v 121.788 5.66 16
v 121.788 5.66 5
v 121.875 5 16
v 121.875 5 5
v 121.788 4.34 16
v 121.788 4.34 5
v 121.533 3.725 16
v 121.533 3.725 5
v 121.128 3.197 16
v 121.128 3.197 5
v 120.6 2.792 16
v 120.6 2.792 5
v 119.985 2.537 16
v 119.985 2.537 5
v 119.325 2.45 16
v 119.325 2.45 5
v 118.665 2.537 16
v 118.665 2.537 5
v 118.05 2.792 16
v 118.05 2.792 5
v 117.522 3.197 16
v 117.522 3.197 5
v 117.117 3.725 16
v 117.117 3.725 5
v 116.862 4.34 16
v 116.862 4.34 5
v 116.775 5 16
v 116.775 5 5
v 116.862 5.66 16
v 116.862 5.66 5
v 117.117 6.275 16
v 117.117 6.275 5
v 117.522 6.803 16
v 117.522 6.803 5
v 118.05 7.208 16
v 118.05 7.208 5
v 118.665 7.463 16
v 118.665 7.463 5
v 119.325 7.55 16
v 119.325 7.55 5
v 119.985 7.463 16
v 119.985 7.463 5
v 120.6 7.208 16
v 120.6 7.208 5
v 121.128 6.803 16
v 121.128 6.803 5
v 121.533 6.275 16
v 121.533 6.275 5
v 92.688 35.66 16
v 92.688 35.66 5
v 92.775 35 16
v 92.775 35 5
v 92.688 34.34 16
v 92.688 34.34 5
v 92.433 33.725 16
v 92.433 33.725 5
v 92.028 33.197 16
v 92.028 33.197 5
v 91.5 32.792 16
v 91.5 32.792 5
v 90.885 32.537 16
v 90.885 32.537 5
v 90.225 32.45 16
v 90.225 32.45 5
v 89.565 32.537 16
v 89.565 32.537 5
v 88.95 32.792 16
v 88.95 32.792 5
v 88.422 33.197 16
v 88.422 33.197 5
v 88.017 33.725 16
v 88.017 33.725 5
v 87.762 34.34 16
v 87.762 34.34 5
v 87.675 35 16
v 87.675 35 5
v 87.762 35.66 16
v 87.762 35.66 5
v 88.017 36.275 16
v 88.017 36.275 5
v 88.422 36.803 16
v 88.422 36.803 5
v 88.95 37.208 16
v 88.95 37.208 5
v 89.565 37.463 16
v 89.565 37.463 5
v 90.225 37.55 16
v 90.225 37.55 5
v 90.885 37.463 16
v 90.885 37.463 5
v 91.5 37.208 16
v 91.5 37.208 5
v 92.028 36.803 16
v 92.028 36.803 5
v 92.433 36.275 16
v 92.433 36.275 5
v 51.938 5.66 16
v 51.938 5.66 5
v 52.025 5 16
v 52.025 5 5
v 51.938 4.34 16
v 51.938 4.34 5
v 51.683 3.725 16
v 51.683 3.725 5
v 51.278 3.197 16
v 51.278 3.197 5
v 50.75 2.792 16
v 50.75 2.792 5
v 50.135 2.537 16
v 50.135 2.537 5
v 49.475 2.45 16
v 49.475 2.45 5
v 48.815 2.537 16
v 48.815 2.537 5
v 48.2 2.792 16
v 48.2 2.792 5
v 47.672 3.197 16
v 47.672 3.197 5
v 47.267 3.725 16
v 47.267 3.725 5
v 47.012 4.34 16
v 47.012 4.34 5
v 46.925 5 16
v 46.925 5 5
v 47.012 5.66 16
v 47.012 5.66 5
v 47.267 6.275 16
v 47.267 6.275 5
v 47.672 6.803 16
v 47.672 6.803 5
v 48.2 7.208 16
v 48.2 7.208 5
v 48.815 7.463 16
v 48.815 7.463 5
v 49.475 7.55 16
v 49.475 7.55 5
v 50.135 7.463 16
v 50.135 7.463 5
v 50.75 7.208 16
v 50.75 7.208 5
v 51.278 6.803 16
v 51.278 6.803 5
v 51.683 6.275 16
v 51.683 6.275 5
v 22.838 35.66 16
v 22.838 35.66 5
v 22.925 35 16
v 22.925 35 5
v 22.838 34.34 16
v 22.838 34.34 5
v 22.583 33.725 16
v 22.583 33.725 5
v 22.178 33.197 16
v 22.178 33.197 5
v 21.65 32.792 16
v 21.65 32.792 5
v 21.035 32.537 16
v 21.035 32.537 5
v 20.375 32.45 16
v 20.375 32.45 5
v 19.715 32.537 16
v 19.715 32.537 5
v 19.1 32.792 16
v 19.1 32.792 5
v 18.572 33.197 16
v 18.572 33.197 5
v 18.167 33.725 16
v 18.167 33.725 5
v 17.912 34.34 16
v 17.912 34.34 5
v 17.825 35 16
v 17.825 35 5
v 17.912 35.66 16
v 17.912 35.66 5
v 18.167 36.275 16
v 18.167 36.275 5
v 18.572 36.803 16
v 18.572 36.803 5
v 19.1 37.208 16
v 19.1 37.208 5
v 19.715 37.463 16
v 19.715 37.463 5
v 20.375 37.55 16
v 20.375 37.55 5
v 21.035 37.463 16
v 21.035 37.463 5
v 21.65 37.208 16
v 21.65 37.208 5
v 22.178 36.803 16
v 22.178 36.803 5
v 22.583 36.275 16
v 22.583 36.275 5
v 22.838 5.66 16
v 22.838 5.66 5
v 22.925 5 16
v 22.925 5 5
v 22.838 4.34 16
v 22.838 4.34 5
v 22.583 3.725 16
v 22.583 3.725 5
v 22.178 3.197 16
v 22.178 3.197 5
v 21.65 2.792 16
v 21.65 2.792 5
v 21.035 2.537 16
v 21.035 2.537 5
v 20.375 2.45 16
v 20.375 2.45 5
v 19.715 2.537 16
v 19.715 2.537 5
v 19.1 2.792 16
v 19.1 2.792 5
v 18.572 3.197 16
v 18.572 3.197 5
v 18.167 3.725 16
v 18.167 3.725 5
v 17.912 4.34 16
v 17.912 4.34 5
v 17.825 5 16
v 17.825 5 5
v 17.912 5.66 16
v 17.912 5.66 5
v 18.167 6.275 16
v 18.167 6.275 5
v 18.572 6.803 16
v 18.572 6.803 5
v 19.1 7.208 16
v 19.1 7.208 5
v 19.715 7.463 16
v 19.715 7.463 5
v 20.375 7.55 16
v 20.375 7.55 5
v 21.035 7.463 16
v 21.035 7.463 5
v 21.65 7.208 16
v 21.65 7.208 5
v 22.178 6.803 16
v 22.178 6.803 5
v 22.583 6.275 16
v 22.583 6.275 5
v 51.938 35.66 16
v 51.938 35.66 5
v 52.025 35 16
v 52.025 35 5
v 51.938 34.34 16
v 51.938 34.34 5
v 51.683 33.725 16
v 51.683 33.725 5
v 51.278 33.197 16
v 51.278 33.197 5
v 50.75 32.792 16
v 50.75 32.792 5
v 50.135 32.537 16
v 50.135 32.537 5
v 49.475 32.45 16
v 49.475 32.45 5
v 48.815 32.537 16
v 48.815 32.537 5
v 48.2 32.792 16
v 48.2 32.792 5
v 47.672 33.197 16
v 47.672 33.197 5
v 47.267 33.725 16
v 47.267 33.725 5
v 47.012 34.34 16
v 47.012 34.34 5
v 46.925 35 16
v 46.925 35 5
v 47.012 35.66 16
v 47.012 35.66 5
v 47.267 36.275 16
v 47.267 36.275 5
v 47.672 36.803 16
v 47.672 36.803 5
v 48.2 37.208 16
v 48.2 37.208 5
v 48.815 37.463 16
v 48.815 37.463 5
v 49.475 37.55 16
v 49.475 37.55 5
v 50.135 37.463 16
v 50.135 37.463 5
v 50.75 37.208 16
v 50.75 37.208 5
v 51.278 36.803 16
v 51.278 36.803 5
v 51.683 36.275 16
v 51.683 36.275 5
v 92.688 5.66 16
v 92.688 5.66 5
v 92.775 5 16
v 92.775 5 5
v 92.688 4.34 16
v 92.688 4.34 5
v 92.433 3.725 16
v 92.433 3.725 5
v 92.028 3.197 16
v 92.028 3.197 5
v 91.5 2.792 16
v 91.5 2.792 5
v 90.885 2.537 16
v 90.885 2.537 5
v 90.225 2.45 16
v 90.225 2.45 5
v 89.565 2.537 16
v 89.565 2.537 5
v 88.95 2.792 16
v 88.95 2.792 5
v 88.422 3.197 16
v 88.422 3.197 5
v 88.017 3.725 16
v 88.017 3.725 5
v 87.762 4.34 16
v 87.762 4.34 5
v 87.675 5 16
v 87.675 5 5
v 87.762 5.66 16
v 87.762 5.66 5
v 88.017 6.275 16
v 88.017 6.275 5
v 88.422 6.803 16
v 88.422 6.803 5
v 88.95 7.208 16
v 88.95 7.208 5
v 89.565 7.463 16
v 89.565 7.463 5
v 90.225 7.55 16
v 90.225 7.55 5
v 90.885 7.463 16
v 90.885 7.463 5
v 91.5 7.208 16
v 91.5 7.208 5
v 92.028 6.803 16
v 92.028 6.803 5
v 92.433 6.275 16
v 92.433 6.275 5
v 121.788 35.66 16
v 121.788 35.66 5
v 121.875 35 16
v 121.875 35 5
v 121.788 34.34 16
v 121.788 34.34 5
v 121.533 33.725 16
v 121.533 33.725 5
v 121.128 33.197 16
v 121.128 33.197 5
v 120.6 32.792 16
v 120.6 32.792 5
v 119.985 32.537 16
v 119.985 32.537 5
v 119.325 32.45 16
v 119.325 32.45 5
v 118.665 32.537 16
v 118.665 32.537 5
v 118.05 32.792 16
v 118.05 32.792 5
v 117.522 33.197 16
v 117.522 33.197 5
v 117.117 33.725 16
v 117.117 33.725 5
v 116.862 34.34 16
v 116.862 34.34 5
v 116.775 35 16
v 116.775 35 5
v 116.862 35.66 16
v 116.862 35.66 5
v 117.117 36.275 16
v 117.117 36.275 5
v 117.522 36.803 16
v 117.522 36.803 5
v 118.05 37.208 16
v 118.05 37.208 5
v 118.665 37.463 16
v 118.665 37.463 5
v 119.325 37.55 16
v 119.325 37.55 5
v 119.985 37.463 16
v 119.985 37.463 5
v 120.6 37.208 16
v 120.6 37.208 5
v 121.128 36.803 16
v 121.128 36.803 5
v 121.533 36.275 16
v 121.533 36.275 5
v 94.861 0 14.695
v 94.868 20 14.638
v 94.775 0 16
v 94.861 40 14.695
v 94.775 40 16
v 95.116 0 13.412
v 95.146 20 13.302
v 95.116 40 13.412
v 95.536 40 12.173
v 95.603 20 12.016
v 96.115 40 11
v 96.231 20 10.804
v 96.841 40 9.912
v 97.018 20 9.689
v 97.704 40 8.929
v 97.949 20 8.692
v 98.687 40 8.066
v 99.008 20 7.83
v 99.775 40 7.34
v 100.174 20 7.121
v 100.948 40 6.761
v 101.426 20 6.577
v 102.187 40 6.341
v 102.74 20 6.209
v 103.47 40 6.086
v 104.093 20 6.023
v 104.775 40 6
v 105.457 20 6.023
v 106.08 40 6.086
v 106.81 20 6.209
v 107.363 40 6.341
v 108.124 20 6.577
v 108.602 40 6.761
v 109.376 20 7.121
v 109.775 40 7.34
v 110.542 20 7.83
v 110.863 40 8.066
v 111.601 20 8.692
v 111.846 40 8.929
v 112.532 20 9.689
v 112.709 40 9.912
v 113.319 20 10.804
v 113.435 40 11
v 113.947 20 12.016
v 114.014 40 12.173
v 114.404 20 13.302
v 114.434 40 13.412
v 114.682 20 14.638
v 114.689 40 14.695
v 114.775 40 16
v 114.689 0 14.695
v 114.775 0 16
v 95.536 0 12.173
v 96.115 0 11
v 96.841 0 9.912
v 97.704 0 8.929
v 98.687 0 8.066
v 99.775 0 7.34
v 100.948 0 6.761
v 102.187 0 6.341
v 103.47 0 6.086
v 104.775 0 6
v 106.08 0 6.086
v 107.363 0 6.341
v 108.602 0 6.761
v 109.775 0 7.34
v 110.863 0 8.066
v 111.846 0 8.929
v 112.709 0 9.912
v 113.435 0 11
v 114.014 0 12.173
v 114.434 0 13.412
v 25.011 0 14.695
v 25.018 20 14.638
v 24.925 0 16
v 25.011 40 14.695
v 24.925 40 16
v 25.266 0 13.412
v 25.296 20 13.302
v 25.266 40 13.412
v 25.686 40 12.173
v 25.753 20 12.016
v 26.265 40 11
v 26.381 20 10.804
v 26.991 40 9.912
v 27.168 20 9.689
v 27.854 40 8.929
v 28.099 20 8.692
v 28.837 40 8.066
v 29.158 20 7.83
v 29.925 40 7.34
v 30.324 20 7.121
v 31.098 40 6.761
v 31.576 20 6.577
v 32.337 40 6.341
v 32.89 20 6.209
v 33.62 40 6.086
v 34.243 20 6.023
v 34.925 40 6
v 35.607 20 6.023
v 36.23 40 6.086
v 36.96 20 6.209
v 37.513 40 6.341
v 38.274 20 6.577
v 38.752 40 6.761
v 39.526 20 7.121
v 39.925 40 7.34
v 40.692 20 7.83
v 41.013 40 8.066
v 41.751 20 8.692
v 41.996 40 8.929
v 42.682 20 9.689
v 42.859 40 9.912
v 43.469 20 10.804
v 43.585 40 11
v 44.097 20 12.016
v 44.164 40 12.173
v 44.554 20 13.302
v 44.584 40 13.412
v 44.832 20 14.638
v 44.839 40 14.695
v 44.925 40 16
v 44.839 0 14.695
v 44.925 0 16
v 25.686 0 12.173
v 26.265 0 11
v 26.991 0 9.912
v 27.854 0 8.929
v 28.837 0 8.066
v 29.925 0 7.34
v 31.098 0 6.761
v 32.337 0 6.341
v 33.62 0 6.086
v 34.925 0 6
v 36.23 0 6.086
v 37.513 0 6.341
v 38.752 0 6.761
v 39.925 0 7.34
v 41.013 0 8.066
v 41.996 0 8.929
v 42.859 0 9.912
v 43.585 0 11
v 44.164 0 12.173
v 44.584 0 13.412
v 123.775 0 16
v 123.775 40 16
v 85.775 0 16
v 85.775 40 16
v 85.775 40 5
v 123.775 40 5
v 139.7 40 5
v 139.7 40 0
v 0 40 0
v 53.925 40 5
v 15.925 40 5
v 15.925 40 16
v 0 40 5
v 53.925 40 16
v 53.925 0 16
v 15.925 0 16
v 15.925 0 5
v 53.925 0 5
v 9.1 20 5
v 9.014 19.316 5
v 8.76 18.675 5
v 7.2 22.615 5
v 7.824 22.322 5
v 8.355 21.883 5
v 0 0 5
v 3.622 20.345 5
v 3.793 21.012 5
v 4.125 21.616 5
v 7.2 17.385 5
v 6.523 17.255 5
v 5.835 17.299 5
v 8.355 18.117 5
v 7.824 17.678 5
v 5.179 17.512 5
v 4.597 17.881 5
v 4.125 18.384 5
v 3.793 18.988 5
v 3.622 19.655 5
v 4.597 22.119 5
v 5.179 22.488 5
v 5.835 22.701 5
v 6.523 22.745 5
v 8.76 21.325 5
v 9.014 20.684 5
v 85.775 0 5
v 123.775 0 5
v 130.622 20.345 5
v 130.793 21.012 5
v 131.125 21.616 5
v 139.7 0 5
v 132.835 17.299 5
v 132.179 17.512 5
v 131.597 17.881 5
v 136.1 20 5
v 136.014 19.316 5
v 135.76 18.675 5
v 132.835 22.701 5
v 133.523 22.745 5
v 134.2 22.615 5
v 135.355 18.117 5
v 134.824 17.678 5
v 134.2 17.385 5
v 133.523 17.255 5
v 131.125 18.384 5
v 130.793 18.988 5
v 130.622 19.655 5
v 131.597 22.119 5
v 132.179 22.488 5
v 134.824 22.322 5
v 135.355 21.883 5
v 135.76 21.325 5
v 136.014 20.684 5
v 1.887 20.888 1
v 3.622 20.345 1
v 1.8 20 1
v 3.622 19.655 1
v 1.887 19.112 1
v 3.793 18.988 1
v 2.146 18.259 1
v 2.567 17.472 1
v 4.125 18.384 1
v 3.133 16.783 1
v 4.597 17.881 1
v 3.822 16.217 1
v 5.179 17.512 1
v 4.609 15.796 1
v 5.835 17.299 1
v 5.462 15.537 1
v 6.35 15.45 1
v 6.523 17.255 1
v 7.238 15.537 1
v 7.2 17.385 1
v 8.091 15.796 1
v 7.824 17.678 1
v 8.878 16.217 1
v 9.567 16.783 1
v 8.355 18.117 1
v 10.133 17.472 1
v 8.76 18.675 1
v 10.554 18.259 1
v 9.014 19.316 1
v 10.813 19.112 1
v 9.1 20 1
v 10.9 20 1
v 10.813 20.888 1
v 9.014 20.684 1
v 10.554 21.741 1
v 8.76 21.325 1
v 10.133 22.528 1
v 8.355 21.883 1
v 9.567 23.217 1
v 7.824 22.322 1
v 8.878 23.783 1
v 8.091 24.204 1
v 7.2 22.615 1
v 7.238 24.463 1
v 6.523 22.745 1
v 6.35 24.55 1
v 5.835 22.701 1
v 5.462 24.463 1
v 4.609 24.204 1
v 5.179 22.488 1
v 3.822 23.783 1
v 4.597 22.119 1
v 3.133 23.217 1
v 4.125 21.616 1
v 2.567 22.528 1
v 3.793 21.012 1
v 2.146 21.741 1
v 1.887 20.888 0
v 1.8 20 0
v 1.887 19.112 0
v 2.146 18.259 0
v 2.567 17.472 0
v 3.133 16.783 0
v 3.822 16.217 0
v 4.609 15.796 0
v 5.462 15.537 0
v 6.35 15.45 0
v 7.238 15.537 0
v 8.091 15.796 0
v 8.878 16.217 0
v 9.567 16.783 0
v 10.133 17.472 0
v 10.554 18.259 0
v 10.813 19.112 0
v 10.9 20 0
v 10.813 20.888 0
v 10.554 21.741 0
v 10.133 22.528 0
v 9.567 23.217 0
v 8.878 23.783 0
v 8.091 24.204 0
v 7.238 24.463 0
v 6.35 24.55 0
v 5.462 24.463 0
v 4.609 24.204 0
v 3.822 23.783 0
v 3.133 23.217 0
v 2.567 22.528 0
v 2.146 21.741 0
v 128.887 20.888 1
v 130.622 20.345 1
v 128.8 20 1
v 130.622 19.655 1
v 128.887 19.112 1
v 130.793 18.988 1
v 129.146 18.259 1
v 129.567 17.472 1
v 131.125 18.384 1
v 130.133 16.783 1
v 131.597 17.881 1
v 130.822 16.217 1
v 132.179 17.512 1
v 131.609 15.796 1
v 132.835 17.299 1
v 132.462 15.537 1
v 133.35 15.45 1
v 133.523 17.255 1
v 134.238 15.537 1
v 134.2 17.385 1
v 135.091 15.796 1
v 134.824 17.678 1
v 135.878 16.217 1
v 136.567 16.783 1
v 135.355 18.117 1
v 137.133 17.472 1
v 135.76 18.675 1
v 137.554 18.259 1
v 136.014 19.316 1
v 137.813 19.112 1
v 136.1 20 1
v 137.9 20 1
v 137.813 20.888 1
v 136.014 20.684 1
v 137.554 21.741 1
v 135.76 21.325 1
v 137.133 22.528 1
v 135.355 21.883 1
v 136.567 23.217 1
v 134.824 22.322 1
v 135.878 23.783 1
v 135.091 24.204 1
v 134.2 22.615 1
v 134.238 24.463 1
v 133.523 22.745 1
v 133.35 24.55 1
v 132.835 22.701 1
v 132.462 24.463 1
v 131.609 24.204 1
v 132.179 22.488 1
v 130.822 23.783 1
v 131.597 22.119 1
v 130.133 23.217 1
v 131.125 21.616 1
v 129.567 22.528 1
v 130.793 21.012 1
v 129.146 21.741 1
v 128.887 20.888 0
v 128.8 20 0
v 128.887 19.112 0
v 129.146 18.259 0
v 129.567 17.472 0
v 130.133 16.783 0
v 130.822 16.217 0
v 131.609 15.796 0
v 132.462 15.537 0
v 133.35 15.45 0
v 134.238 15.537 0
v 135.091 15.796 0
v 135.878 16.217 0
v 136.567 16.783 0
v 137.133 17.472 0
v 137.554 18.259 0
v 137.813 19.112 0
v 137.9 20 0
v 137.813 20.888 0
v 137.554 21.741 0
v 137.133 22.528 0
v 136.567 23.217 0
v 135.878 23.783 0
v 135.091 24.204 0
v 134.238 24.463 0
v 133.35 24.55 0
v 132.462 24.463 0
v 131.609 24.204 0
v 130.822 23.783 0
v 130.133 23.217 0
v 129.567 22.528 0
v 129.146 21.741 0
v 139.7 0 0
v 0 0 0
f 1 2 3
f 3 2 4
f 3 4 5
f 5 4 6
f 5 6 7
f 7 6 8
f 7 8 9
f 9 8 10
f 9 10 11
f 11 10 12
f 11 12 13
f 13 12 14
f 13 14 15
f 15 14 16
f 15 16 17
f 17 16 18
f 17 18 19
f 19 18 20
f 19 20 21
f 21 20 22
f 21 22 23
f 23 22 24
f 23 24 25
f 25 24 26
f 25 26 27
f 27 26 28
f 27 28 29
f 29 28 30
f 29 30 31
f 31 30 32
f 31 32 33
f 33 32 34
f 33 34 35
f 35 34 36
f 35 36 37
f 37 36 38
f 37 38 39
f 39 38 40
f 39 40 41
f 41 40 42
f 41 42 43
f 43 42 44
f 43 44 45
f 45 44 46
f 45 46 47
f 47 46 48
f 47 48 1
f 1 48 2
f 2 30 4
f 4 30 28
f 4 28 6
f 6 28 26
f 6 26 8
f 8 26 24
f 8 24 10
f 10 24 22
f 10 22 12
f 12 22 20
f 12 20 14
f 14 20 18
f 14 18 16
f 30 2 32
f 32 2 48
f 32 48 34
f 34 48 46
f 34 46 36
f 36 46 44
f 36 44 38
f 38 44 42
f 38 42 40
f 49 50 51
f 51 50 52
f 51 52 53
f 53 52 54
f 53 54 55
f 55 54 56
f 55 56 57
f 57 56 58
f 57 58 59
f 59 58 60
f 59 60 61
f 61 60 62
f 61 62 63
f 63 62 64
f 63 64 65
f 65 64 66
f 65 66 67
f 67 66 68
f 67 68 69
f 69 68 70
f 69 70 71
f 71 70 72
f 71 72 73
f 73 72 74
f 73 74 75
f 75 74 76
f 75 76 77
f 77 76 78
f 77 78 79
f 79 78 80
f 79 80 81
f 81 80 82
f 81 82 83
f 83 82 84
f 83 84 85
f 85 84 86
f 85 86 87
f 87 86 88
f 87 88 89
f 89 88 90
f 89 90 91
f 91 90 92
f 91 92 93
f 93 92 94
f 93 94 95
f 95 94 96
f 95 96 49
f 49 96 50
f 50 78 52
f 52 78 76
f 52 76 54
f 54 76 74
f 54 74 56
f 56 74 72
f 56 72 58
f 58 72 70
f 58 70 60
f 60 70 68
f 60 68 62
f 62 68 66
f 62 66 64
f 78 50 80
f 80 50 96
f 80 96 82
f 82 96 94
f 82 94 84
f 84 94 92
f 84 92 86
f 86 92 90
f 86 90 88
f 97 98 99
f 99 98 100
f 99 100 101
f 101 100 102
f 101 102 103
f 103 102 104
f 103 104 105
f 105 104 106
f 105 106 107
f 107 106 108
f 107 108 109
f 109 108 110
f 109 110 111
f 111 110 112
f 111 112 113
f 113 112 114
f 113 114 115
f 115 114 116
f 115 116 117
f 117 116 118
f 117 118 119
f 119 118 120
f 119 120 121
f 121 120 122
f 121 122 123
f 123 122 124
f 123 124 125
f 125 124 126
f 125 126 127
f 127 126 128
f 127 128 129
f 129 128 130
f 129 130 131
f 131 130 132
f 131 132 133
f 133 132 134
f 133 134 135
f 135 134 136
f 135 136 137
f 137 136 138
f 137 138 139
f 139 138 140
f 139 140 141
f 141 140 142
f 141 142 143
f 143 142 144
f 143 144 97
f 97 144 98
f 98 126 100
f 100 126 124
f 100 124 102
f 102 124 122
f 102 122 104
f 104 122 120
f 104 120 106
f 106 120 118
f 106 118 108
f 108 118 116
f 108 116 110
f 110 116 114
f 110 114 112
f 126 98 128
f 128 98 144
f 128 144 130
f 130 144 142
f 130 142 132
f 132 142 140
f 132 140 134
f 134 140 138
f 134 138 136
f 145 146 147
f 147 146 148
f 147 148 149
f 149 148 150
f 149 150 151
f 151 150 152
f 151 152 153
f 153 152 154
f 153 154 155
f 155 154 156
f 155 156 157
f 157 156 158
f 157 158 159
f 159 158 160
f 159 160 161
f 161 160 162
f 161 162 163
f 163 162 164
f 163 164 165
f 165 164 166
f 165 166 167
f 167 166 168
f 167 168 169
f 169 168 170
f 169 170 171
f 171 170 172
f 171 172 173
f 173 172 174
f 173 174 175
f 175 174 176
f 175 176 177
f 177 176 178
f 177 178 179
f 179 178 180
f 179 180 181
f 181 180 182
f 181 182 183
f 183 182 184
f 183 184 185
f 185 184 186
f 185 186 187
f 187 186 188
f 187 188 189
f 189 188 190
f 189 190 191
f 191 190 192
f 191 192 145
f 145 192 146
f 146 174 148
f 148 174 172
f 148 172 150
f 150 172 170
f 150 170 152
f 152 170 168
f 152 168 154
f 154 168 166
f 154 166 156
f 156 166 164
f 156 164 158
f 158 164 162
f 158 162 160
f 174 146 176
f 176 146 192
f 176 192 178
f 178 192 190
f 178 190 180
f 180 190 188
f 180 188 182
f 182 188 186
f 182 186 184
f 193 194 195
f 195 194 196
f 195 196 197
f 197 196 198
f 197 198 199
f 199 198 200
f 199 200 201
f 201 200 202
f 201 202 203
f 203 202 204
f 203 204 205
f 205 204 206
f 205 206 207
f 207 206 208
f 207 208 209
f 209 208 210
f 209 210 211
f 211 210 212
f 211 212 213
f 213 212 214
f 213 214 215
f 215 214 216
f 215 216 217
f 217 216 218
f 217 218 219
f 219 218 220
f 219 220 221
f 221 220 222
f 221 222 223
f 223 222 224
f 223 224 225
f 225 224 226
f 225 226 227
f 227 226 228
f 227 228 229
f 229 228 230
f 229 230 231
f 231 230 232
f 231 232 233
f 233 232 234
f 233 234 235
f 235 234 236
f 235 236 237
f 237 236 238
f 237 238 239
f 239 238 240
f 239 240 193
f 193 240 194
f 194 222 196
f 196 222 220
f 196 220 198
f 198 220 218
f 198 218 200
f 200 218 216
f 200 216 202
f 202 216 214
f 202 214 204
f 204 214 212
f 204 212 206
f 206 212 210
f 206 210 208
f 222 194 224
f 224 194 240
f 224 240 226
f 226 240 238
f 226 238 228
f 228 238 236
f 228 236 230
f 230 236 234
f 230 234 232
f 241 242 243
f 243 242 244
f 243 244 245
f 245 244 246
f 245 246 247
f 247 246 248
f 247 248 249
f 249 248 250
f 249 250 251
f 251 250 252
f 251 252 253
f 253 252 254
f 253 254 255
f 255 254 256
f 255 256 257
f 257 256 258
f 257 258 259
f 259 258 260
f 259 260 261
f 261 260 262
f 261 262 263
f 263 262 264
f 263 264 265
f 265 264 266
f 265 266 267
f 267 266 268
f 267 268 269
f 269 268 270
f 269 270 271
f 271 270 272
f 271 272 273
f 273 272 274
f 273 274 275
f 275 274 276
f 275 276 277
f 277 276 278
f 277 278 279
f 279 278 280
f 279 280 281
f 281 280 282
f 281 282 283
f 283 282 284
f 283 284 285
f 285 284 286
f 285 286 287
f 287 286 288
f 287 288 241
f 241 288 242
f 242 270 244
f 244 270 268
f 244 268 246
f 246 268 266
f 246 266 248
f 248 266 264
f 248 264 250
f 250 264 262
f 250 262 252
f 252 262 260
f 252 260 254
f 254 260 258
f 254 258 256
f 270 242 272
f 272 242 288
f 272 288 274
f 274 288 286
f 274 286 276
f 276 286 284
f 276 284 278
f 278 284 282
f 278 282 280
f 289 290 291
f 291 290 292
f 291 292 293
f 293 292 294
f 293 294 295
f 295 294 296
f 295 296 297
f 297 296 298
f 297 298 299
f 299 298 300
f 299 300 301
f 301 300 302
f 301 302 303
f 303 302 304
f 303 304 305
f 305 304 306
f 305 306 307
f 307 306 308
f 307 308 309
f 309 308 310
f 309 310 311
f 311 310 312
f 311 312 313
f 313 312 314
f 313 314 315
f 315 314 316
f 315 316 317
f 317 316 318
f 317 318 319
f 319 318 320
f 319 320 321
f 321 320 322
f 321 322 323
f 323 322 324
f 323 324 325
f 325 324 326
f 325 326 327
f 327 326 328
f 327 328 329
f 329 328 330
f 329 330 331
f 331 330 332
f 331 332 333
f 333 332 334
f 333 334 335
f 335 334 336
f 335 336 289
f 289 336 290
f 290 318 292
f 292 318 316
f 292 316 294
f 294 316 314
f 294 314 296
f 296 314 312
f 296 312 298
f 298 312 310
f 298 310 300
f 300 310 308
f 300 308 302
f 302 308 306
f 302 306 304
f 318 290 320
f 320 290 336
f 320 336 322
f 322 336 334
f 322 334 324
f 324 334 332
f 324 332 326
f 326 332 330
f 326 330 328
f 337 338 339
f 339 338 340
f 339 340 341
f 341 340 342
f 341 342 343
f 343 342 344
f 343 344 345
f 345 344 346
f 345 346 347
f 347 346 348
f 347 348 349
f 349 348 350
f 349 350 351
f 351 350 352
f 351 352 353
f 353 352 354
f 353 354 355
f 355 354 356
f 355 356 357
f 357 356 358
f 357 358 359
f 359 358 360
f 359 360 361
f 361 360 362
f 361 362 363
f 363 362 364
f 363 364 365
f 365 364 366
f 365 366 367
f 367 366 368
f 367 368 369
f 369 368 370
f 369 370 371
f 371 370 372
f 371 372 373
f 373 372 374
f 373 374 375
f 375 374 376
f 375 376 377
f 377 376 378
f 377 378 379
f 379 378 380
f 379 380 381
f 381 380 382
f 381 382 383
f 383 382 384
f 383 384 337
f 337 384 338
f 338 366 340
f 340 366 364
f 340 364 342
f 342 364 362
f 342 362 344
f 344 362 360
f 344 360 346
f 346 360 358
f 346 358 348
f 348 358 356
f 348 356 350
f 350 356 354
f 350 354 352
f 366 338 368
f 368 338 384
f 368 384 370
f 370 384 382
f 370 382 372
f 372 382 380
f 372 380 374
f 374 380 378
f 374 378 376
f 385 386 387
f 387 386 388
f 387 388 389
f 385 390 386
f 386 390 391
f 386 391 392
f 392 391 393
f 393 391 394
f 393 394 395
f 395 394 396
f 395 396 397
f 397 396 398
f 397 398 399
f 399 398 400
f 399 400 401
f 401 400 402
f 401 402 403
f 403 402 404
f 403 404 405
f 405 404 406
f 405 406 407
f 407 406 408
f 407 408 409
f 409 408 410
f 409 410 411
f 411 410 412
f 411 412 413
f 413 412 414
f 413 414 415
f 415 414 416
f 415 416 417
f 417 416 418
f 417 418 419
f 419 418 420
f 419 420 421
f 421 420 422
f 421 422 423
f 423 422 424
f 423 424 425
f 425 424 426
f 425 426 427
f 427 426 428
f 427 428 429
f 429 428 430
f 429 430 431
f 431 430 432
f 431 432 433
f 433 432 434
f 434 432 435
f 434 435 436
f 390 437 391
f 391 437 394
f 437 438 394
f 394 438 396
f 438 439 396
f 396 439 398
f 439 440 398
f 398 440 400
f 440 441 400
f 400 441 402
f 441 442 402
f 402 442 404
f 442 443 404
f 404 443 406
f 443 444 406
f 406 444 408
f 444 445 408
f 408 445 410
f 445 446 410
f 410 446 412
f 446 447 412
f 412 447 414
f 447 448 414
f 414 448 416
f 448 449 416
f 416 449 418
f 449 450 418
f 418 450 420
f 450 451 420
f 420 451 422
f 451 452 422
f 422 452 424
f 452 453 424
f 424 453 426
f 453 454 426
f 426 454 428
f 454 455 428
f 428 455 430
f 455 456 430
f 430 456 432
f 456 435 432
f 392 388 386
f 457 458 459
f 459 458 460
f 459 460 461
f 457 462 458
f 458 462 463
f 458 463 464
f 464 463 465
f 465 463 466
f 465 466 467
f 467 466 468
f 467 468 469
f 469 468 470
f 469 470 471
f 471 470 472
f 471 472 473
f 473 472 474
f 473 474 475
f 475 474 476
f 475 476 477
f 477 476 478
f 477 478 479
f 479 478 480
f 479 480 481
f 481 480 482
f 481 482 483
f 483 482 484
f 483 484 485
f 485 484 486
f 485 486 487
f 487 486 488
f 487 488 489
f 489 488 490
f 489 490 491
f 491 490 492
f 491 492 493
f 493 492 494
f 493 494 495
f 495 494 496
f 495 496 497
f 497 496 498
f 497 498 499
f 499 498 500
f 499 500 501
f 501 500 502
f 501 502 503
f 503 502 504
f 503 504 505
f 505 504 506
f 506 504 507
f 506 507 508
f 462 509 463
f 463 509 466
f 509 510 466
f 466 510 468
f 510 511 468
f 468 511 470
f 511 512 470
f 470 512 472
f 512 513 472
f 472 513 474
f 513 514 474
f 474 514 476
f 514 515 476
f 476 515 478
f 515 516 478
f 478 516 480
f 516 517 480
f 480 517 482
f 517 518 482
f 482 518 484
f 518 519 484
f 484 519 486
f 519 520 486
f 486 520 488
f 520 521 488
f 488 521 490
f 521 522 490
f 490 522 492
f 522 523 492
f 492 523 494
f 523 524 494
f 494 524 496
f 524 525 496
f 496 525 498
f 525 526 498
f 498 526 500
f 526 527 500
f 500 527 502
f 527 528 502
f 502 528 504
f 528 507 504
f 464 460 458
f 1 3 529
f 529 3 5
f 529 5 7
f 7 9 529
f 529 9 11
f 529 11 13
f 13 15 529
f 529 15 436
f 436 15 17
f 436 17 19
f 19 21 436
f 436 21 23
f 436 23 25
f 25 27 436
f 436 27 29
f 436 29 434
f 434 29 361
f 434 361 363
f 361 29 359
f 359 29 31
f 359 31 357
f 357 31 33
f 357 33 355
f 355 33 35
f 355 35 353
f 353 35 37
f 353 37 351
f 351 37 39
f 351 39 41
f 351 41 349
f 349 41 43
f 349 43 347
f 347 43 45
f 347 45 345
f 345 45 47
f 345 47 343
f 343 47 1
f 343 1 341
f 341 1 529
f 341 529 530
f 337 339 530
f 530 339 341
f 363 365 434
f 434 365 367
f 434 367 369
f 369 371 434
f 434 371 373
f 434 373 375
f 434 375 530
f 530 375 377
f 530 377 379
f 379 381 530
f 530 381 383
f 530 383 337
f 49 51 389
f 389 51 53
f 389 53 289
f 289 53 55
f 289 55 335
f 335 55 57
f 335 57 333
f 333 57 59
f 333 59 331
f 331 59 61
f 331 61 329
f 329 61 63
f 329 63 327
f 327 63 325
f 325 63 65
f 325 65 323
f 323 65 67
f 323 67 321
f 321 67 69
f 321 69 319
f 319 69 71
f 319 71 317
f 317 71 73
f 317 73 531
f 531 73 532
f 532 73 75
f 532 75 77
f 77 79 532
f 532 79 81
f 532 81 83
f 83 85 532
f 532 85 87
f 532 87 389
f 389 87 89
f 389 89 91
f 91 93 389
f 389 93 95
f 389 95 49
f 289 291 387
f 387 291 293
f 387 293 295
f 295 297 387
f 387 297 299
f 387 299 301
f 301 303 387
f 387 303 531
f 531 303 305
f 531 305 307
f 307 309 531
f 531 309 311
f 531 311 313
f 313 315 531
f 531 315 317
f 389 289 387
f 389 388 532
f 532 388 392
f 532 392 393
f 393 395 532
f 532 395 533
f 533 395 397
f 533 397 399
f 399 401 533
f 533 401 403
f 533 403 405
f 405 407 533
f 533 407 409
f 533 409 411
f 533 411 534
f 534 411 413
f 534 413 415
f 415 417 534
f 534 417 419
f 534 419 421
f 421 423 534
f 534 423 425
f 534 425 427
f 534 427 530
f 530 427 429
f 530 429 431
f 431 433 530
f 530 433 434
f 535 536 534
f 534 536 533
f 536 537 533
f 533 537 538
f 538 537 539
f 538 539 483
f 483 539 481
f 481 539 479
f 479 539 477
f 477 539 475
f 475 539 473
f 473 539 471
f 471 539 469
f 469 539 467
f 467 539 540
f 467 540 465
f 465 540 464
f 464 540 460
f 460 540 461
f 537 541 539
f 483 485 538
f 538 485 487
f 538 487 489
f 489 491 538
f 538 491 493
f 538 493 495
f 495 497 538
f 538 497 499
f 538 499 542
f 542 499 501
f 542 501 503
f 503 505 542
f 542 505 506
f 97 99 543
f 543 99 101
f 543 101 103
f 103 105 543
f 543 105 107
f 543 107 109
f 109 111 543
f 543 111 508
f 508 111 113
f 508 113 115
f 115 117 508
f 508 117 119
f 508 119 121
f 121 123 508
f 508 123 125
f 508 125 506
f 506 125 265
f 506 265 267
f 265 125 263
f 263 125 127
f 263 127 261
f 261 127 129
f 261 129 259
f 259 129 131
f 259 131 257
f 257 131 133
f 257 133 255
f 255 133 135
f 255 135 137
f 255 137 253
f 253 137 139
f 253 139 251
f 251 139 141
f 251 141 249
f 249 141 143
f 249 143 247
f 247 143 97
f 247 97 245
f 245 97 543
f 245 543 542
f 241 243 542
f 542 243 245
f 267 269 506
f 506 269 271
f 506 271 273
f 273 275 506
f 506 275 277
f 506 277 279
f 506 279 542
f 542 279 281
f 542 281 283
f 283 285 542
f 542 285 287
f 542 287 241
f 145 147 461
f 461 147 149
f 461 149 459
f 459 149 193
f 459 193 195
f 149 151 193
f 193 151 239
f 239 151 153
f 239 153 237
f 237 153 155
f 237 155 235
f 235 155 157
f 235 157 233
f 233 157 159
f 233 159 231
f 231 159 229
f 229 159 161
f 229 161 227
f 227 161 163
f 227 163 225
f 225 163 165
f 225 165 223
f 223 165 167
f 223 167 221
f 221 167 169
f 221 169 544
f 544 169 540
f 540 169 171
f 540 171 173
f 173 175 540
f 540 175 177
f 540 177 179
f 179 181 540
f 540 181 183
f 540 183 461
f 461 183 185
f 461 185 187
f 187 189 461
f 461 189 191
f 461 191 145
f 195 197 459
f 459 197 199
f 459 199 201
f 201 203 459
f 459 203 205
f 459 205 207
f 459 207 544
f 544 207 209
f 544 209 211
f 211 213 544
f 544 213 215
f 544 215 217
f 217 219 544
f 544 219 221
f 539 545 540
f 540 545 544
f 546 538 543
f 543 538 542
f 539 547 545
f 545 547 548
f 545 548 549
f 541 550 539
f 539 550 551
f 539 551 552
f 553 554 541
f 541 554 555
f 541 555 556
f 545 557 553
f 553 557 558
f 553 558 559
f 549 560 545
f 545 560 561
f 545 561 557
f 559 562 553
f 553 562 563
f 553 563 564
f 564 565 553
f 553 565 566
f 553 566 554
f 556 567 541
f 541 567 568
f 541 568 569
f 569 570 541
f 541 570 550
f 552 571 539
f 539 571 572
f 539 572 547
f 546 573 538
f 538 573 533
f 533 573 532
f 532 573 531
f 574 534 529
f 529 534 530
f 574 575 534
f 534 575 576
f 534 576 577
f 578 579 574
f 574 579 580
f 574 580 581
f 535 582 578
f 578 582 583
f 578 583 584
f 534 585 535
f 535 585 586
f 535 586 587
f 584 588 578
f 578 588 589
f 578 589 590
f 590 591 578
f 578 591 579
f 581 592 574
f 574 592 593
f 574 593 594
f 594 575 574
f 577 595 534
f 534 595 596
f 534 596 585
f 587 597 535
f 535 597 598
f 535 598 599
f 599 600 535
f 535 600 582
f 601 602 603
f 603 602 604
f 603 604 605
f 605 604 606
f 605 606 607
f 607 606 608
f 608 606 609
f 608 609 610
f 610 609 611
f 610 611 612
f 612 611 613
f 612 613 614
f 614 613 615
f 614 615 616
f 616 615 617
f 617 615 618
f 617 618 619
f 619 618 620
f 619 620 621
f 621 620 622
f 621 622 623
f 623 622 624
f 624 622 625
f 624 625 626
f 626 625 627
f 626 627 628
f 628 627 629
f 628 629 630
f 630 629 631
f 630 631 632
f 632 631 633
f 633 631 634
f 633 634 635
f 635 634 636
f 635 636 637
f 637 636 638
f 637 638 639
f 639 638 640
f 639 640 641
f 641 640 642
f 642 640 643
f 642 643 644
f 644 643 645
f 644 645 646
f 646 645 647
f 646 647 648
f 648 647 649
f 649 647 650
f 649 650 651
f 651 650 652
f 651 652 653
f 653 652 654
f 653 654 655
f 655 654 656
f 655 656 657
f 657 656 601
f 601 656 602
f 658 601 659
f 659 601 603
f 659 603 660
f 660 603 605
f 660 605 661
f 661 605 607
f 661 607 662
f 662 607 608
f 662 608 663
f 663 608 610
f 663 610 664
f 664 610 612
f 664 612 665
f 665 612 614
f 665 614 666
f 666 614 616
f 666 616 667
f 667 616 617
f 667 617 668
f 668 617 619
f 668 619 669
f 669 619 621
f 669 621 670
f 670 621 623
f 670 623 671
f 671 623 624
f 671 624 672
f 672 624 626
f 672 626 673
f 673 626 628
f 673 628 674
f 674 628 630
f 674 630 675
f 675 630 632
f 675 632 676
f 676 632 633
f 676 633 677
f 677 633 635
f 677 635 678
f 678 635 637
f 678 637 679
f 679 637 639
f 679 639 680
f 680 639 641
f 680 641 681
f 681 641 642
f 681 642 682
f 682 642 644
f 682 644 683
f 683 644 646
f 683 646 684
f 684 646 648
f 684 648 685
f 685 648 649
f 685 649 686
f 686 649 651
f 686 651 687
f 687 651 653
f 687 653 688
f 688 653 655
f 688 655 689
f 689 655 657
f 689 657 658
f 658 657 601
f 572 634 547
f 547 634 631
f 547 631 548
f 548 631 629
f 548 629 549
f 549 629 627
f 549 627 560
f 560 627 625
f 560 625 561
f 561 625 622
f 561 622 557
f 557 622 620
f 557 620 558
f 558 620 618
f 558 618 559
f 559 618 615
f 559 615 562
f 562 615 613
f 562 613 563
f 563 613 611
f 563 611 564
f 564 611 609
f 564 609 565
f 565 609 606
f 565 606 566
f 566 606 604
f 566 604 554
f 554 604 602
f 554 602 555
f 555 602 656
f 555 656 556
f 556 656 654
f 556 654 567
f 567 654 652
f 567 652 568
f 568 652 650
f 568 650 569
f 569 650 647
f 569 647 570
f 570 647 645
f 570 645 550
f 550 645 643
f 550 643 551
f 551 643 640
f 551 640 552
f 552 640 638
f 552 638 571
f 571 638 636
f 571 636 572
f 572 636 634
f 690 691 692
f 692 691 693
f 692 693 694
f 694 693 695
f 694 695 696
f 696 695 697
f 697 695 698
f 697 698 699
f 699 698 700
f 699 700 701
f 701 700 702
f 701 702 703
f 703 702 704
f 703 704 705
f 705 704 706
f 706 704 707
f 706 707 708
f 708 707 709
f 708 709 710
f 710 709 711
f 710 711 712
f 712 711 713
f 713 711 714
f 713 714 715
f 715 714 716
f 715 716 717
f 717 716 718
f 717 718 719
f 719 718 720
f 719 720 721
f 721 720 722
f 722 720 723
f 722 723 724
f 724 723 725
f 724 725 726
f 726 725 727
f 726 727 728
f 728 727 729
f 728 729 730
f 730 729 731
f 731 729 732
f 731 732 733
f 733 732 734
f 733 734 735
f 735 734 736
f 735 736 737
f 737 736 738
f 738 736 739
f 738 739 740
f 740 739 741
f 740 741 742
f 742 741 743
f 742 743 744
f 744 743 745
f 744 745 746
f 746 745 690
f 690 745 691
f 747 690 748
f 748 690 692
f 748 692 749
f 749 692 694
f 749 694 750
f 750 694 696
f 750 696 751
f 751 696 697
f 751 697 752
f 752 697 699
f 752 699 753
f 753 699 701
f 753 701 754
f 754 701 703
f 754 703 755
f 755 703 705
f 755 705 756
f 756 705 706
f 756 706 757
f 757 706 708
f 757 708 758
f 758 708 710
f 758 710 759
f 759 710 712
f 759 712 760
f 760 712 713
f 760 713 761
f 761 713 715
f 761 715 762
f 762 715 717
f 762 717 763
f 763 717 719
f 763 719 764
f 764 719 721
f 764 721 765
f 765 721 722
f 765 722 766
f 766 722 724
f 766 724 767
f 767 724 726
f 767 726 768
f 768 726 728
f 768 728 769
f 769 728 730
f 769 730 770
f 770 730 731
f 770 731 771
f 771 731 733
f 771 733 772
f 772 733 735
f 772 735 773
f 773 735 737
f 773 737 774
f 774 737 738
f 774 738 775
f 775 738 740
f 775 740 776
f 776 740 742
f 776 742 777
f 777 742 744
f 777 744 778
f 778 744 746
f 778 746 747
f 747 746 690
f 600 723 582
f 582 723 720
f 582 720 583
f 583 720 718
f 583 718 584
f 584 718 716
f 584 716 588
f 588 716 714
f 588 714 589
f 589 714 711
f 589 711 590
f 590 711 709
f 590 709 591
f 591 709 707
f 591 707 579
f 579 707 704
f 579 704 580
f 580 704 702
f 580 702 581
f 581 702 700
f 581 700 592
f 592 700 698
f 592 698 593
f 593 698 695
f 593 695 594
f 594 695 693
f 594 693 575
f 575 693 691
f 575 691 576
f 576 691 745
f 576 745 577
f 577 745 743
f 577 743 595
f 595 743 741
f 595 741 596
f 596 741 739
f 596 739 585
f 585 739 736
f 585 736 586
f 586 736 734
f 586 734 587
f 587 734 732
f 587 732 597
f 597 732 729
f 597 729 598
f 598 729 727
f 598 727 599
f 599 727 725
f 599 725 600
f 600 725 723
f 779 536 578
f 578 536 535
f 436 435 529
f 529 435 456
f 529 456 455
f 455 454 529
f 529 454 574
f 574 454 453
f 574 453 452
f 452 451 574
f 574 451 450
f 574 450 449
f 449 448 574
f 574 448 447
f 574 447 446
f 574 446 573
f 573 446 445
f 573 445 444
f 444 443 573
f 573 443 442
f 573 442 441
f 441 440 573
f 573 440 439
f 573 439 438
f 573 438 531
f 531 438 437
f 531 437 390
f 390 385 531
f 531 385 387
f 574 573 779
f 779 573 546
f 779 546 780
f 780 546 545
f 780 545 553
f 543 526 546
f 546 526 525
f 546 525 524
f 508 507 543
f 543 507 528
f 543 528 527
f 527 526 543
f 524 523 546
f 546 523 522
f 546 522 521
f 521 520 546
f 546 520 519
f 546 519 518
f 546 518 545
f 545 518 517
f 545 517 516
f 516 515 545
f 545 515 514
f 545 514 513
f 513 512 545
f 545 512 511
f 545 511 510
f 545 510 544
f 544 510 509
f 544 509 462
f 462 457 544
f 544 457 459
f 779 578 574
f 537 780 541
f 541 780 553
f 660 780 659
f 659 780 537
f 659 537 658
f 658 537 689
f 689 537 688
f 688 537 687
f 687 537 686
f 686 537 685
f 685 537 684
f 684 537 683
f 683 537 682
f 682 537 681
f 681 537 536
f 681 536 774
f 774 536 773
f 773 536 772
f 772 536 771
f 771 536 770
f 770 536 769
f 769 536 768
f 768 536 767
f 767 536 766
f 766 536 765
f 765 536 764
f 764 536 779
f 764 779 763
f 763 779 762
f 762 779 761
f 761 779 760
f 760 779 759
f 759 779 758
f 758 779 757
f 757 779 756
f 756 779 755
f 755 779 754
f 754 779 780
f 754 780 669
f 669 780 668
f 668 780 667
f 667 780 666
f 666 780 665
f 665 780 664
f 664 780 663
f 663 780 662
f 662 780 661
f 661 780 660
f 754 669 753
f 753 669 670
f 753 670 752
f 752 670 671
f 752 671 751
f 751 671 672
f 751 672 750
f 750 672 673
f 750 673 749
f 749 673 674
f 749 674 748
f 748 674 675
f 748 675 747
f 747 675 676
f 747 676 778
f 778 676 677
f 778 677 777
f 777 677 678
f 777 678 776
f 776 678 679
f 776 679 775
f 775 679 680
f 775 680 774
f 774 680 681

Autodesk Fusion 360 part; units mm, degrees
sketch "Sketch1" plane through (0, 0, 0) normal (0, 0, 1) x (1, 0, 0)
  line L0 (0, 0) -> (139.7, 0)
  line L1 (139.7, 0) -> (139.7, 40)
  line L2 (139.7, 40) -> (0, 40)
  line L3 (0, 40) -> (0, 0)
  dimension "d1" = 139.7
  dimension "d2" = 40
extrude "Extrude1" add sketch "Sketch1" along normal blind 5
sketch "Sketch2" plane through (0, 0, 0) normal (0, 0, 1) x (1, 0, 0)
  point P0 (6.35, 20)
  point P1 (133.35, 20)
hole "Hole1" at (6.35, 20, 0) at (133.35, 20, 0) direction (0, 0, 1) diameter 5.5 depth 13 tip angle 118 counterbore diameter 9.1 counterbore depth 1
sketch "Sketch7" plane through (0, 0, 5) normal (0, 0, 1) x (-1, 0, 0)
  circle A0 centre (-6.35, -20) radius 2.75
  circle A1 centre (-133.35, -20) radius 2.75
  line L0 (0, -40) -> (0, 0)
  line L1 (0, 0) -> (-139.7, 0)
  line L2 (-139.7, 0) -> (-139.7, -40)
  line L3 (-139.7, -40) -> (0, -40)
  line L4 (-85.775, -40) -> (-123.775, -40)
  line L5 (-123.775, -40) -> (-123.775, 0)
  line L6 (-123.775, 0) -> (-85.775, 0)
  line L7 (-85.775, 0) -> (-85.775, -40)
  line L8 (-85.775, -40) -> (-123.775, 0) construction
  line L9 (-123.775, -40) -> (-85.775, 0) construction
  line L10 (-15.925, -40) -> (-53.925, -40)
  line L11 (-53.925, -40) -> (-53.925, 0)
  line L12 (-53.925, 0) -> (-15.925, 0)
  line L13 (-15.925, 0) -> (-15.925, -40)
  line L14 (-15.925, -40) -> (-53.925, 0) construction
  line L15 (-53.925, -40) -> (-15.925, 0) construction
  point P0 (-104.775, -20)
  point P1 (-34.925, -20)
  point P2 (-104.775, -20)
  point P3 (-34.925, -20)
  dimension "d25" = 38
  dimension "d26" = 40
  dimension "d27" = 38
  dimension "d28" = 40
extrude "Extrude4" add sketch "Sketch7" along normal blind 11 contours L1 L3 L10 L11 L12 L13 | L1 L3 L4 L5 L6 L7
sketch "Sketch8" plane through (0, 40, 0) normal (0, 1, 0) x (-1, 0, 0)
  line L0 (-139.7, 0) -> (0, 0)
  line L1 (0, 0) -> (0, 5)
  line L2 (0, 5) -> (-15.925, 5)
  line L3 (-15.925, 5) -> (-15.925, 16)
  line L4 (-15.925, 16) -> (-53.925, 16)
  line L5 (-53.925, 16) -> (-53.925, 5)
  line L6 (-53.925, 5) -> (-85.775, 5)
  line L7 (-85.775, 5) -> (-85.775, 16)
  line L8 (-85.775, 16) -> (-123.775, 16)
  line L9 (-123.775, 16) -> (-123.775, 5)
  line L10 (-123.775, 5) -> (-139.7, 5)
  line L11 (-139.7, 5) -> (-139.7, 0)
  circle A0 centre (-104.775, 16) radius 10
  circle A1 centre (-34.925, 16) radius 10
  point P0 (-104.775, 16)
  point P1 (-34.925, 16)
  dimension "d31" = 20
  dimension "d32" = 20
extrude "Extrude5" cut sketch "Sketch8" against normal blind 400 contours L8 A0 | L4 A1 picked at (-104.876, 11.6935) picked at (-35.1741, 12.676)
sketch "Sketch9" plane through (0, 0, 16) normal (0, 0, 1) x (-1, 0, 0)
  line L0 (-24.925, 0) -> (-24.925, -40)
  line L1 (-24.925, -40) -> (-15.925, -40)
  line L2 (-15.925, -40) -> (-15.925, 0)
  line L3 (-15.925, 0) -> (-24.925, 0)
  point P0 (-20.375, -5)
  point P1 (-20.375, -35)
  point P2 (-49.475, -5)
  point P3 (-49.475, -35)
  point P4 (-90.225, -35)
  point P5 (-90.225, -5)
  point P6 (-119.325, -35)
  point P7 (-119.325, -5)
hole "Hole4" at (20.375, 35, 16) at (20.375, 5, 16) at (49.475, 5, 16) at (49.475, 35, 16) at (90.225, 35, 16) at (90.225, 5, 16) at (119.325, 5, 16) at (119.325, 35, 16) direction (0, 0, -1) diameter 5.1 depth 11 tip angle 180
